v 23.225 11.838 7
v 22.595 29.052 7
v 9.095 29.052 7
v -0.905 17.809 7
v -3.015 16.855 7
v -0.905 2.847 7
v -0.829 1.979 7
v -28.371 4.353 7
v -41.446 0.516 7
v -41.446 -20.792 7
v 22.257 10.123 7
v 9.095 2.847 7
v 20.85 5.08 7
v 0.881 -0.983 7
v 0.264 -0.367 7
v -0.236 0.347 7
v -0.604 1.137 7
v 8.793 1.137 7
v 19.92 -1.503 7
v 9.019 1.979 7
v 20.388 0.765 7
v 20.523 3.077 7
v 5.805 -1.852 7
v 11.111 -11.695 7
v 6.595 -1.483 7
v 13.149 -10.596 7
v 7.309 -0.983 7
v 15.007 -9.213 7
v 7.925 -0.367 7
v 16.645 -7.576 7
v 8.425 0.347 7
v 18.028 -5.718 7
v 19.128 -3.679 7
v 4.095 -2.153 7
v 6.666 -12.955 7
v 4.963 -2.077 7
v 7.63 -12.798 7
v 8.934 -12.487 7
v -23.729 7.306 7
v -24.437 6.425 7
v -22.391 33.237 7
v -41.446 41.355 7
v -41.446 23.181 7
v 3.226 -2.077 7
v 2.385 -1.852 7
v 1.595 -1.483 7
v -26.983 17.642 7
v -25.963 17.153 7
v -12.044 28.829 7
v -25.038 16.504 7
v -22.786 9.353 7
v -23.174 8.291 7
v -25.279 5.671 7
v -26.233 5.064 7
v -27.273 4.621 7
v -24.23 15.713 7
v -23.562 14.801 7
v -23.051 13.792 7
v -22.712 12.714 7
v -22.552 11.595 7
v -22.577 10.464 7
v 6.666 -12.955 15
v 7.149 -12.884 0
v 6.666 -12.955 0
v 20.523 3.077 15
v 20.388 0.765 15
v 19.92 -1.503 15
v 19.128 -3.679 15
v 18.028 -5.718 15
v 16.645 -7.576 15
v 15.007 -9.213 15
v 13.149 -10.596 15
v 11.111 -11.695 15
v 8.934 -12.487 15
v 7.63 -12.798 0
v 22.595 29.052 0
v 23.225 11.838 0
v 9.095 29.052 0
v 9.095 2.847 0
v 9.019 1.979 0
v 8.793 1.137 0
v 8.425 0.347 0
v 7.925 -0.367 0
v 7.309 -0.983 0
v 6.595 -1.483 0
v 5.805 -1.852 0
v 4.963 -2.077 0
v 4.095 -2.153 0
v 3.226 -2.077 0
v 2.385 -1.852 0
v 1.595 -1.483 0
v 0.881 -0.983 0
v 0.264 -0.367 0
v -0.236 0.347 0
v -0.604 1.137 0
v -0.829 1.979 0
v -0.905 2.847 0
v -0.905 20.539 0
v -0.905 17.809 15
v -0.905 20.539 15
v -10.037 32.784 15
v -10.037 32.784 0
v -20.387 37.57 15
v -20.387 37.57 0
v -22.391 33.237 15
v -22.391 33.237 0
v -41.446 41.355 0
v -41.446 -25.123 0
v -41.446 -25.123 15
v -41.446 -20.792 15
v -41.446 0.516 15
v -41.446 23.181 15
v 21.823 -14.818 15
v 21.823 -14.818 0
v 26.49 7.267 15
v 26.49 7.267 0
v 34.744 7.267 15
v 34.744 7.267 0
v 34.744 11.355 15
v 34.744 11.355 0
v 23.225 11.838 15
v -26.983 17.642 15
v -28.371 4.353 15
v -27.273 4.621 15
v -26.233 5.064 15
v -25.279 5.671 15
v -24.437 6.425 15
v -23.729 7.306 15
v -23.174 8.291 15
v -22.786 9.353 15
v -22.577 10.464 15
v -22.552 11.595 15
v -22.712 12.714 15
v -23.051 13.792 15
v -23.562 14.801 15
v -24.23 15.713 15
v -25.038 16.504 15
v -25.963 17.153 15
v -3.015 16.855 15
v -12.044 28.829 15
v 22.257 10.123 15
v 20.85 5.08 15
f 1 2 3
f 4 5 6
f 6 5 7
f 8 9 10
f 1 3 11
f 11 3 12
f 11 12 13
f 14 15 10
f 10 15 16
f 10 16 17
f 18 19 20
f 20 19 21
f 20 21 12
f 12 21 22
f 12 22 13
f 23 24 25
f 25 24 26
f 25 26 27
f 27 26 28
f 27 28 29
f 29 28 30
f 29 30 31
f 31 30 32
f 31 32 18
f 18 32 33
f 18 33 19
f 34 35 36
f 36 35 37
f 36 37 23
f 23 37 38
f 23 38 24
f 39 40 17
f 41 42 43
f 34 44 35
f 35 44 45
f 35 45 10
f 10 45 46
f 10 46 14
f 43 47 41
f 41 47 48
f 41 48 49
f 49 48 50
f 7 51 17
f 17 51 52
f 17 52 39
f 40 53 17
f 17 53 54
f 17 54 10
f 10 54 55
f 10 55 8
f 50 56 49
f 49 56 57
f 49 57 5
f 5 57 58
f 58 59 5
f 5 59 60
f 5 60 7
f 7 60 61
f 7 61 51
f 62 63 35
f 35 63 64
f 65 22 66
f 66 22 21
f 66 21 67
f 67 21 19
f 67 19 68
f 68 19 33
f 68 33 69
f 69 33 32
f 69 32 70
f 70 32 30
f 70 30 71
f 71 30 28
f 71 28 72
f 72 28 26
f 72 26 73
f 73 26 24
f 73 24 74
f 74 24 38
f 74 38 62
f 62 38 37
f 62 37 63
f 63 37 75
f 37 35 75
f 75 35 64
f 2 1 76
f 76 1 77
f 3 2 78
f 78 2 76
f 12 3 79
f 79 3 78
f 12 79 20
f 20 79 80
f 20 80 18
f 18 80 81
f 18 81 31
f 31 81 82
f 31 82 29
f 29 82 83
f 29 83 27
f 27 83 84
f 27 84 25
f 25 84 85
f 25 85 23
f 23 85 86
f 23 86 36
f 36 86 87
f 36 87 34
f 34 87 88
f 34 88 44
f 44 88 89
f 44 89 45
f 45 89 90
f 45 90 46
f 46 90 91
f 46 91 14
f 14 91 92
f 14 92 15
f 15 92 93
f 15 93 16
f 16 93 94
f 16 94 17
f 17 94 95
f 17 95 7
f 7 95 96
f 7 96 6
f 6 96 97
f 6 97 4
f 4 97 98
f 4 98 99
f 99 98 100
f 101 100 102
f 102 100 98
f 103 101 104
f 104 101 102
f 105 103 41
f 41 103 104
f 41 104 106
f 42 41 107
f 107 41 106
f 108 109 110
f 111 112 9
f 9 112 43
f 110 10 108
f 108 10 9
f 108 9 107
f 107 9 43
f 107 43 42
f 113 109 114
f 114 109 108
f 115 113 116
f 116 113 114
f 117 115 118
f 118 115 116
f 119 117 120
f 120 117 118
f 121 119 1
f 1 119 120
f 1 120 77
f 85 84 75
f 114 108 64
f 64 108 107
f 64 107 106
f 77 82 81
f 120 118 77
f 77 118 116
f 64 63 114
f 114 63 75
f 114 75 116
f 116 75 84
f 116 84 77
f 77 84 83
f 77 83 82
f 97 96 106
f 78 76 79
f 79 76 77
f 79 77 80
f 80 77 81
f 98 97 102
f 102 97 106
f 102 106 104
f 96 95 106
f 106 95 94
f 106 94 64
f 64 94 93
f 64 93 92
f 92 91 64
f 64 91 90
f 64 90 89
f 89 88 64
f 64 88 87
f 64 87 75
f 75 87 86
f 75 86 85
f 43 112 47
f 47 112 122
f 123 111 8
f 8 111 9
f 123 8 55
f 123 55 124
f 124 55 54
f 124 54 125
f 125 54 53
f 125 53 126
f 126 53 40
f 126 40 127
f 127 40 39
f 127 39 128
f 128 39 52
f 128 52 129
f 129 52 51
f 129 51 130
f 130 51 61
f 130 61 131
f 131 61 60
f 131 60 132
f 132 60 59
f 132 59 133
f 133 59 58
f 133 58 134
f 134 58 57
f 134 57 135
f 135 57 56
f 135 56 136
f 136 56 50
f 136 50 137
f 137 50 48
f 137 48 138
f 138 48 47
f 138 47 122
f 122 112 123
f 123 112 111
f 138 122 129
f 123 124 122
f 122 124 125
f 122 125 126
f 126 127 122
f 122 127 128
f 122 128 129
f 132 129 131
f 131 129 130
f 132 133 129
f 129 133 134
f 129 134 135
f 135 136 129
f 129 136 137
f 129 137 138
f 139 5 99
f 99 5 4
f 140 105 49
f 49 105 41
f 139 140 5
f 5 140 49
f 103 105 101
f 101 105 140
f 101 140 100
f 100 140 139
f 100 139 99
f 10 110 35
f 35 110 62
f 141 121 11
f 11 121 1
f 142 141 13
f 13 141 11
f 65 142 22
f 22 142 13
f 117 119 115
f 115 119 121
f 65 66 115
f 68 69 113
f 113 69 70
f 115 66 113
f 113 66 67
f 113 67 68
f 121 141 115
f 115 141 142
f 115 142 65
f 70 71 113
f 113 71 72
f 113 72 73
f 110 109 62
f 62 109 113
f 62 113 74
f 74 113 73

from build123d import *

# Parameters (mm, degrees)
BOSS_EXTRUDE2_DEPTH = 7
BOSS_EXTRUDE3_DEPTH = 15


with BuildPart() as part:
    # Sketch1 → Boss-Extrude2 (new body)
    with BuildSketch(Plane.XY):
        with BuildLine():
            Line((-41.446212302, -25.123400981), (21.822672825, -14.817519442))
            Line((21.822672825, -14.817519442), (26.489801196, 7.266810726))
            Line((26.489801196, 7.266810726), (34.744303123, 7.266810726))
            Line((34.744303123, 7.266810726), (34.744303123, 11.354641566))
            Line((34.744303123, 11.354641566), (23.2245968, 11.838054321))
            Line((23.2245968, 11.838054321), (22.594616957, 29.052034329))
            Line((22.594616957, 29.052034329), (9.094616957, 29.052034329))
            Line((9.094616957, 29.052034329), (9.094616957, 2.846901584))
            ThreePointArc((9.094616957, 2.846901584), (4.094616957, -2.153098416), (-0.905383043, 2.846901584))
            Line((-0.905383043, 2.846901584), (-0.905383043, 20.539136331))
            Line((-0.905383043, 20.539136331), (-10.036820206, 32.783811613))
            Line((-10.036820206, 32.783811613), (-20.38656022, 37.570023616))
            Line((-20.38656022, 37.570023616), (-22.390510994, 33.236665732))
            Line((-22.390510994, 33.236665732), (-41.446212302, 41.354859092))
            Line((-41.446212302, 41.354859092), (-41.446212302, -25.123400981))
        make_face()
        with BuildLine():
            ThreePointArc((7.629856976, -12.798163857), (7.149099204, -12.884055354), (6.665935601, -12.955177206))
            Line((6.665935601, -12.955177206), (7.629856976, -12.798163857))
        make_face(mode=Mode.SUBTRACT)
    extrude(amount=BOSS_EXTRUDE2_DEPTH)

    # Sketch1<7> → Boss-Extrude3 (add)
    with BuildSketch(Plane.XY):
        with BuildLine():
            Line((-41.446212302, -20.792174742), (-41.446212302, -25.123400981))
            Line((-41.446212302, -25.123400981), (21.822672825, -14.817519442))
            Line((21.822672825, -14.817519442), (26.489801196, 7.266810726))
            Line((26.489801196, 7.266810726), (34.744303123, 7.266810726))
            Line((34.744303123, 7.266810726), (34.744303123, 11.354641566))
            Line((34.744303123, 11.354641566), (23.2245968, 11.838054321))
            Line((23.2245968, 11.838054321), (22.257186267, 10.122973627))
            Line((22.257186267, 10.122973627), (20.850125794, 5.080010211))
            Line((20.850125794, 5.080010211), (20.523303512, 3.077207951))
            ThreePointArc((20.523303512, 3.077207951), (16.644968484, -7.575511067), (6.665935601, -12.955177206))
            Line((6.665935601, -12.955177206), (-41.446212302, -20.792174742))
        make_face()
        with BuildLine():
            Line((-41.446212302, 0.515744675), (-28.371326411, 4.352577852))
            ThreePointArc((-28.371326411, 4.352577852), (-22.577436194, 10.464331884), (-26.982644321, 17.641855311))
            Line((-26.982644321, 17.641855311), (-41.446212302, 23.180975488))
            Line((-41.446212302, 23.180975488), (-41.446212302, 0.515744675))
        make_face()
        with BuildLine():
            Line((-12.043630753, 28.828642478), (-3.015328717, 16.855415173))
            ThreePointArc((-3.015328717, 16.855415173), (-1.977696529, 17.370604665), (-0.905383043, 17.809061684))
            Line((-0.905383043, 17.809061684), (-0.905383043, 20.539136331))
            Line((-0.905383043, 20.539136331), (-10.036820206, 32.783811613))
            Line((-10.036820206, 32.783811613), (-20.38656022, 37.570023616))
            Line((-20.38656022, 37.570023616), (-22.390510994, 33.236665732))
            Line((-22.390510994, 33.236665732), (-12.043630753, 28.828642478))
        make_face()
    extrude(amount=BOSS_EXTRUDE3_DEPTH)


solid = part.part
